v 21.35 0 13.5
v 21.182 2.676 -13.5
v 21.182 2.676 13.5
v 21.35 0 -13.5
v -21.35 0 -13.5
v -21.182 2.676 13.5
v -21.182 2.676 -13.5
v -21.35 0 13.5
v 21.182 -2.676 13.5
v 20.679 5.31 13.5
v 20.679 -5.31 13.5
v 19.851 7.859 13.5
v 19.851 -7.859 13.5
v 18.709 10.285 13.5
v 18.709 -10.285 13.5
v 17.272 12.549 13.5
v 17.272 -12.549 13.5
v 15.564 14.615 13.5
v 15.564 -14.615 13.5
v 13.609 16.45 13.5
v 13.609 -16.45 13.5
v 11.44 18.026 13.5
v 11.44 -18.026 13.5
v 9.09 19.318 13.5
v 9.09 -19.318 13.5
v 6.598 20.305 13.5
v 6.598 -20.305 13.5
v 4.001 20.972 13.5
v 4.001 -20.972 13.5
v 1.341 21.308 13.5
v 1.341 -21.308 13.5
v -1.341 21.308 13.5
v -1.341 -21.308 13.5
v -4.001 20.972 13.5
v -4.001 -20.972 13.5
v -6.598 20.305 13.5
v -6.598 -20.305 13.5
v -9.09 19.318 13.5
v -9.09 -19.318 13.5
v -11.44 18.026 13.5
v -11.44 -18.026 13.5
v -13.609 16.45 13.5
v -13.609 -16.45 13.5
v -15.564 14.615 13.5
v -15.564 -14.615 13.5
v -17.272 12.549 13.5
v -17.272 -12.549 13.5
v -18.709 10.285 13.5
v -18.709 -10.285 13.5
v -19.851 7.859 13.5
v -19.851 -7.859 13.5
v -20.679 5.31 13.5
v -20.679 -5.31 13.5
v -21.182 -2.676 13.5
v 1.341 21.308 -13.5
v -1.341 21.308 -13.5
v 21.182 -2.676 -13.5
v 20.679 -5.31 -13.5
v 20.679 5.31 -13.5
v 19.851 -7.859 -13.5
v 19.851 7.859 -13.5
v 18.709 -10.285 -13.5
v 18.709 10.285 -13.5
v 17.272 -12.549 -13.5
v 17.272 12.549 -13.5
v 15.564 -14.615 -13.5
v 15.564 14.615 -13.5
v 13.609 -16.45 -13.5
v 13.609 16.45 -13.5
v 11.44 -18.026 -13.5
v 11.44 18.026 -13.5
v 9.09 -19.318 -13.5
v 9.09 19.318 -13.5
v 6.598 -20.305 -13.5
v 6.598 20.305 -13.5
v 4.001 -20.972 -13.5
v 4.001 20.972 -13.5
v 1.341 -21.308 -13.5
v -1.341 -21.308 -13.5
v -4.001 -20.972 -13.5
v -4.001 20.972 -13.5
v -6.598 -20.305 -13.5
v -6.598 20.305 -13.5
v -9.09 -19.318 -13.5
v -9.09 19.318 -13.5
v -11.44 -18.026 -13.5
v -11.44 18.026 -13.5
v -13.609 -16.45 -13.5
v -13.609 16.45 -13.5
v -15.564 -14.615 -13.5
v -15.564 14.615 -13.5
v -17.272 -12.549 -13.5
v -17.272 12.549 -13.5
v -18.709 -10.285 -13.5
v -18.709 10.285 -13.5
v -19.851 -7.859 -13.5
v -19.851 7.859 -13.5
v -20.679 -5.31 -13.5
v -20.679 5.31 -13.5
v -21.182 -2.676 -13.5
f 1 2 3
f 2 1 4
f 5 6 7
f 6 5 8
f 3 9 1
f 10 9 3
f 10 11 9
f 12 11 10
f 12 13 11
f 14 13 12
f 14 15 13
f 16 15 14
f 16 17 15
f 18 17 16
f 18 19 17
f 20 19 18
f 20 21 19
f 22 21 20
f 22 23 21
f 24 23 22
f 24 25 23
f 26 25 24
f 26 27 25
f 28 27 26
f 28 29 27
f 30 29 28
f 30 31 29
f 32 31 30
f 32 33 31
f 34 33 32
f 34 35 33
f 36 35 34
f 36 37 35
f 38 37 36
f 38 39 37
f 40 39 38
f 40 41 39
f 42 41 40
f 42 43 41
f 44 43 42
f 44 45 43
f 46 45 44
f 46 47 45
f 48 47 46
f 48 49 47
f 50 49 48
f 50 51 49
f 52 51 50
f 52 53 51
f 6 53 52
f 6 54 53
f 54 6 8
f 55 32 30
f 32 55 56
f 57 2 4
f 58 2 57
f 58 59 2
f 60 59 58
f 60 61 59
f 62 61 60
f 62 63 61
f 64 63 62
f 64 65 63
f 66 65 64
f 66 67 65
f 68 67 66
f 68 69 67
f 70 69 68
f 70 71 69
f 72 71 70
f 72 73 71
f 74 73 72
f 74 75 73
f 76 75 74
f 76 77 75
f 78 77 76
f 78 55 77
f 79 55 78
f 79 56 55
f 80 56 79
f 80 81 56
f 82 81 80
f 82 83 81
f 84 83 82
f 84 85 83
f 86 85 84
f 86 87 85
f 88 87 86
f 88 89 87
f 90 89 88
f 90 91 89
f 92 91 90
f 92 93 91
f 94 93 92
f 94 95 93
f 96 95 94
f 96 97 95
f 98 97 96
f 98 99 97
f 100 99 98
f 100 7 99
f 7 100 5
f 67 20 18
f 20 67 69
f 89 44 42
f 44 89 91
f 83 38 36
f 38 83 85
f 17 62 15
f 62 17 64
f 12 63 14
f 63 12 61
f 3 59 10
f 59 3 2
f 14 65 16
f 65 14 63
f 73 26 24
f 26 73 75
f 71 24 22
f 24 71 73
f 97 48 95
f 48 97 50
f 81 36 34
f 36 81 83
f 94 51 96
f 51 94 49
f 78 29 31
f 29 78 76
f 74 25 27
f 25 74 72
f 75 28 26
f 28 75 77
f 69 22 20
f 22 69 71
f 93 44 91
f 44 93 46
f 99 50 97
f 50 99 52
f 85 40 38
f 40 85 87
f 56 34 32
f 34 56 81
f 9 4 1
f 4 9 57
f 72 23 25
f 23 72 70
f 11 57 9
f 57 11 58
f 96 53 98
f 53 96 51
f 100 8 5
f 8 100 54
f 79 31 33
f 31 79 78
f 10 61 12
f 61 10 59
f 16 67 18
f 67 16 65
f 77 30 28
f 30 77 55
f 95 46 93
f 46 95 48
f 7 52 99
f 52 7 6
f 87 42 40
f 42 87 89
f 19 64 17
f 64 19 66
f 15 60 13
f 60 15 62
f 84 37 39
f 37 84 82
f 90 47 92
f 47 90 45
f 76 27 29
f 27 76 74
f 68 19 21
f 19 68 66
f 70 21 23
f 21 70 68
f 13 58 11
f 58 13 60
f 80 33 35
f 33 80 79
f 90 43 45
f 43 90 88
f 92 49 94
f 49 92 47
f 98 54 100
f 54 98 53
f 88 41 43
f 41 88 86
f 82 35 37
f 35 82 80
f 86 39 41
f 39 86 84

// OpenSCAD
$fn = 50;


difference() {
	union() {
		translate(v = [0, 0, -13.5000000000]) {
			cylinder(h = 27, r = 21.3500000000);
		}
	}
	union() {
		translate(v = [0, 0, -100.0000000000]) {
			cylinder(h = 200, r = 0);
		}
	}
}
